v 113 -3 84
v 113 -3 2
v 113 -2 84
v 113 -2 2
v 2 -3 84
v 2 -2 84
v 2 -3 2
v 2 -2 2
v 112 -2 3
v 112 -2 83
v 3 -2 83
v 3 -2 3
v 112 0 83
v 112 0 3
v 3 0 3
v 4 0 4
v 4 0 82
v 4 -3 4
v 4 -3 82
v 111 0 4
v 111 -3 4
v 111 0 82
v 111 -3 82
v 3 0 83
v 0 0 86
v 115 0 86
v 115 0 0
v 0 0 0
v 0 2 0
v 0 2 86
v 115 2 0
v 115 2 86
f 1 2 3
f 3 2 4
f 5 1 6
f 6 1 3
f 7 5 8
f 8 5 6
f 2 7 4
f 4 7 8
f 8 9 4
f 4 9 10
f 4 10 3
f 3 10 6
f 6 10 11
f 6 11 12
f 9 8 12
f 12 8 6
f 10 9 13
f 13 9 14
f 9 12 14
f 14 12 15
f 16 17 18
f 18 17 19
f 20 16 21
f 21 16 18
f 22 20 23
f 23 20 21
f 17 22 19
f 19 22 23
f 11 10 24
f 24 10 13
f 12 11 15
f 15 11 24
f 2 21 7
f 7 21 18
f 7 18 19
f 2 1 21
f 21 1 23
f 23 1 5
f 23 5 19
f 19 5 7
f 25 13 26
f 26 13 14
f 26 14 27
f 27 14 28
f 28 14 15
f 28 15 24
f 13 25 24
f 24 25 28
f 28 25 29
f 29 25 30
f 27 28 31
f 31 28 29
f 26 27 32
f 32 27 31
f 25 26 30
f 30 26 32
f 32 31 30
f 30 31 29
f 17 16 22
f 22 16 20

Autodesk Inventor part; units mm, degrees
ref_plane "YZ Plane" through (0, 0, 0) normal (1, 0, 0) x (0, 1, 0)
ref_plane "XZ Plane" through (0, 0, 0) normal (0, 1, 0) x (-1, 0, 0)
ref_plane "XY Plane" through (0, 0, 0) normal (0, 0, 1) x (1, 0, 0)
sketch "Sketch1" plane through (0, 0, 0) normal (0, 1, 0) x (-1, 0, 0)
  line L0 (0, 0) -> (0, 86)
  line L1 (0, 86) -> (-115, 86)
  line L2 (-115, 86) -> (-115, 0)
  line L3 (-115, 0) -> (0, 0)
  dimension "d0" = 86
  dimension "d1" = 115
extrude "Extrusion1" add sketch "Sketch1" along normal blind 2
sketch "Sketch2" plane through (0, 0, 0) normal (0, -1, 0) x (1, 0, 0)
  point P0 (0, 0)
sketch "Sketch3" plane through (0, 0, 0) normal (0, -1, 0) x (1, 0, 0)
  line L0 (112, 83) -> (3, 83)
  line L1 (3, 83) -> (3, 3)
  line L2 (3, 3) -> (112, 3)
  line L3 (112, 3) -> (112, 83)
  line L4 (4, 82) -> (111, 82)
  line L5 (111, 82) -> (111, 4)
  line L6 (111, 4) -> (4, 4)
  line L7 (4, 4) -> (4, 82)
  point P0 (0, 0)
  dimension "d4" = 109
  dimension "d5" = 80
  dimension "d6" = 109
  dimension "d7" = 1
extrude "Extrusion2" add sketch "Sketch3" along normal blind 3
sketch "Sketch4" plane through (0, -3, 0) normal (0, -1, 0) x (1, 0, 0)
  line L0 (2, 84) -> (113, 84)
  line L1 (113, 84) -> (113, 2)
  line L2 (113, 84) -> (195, 84) construction
  line L3 (113, 2) -> (2, 2)
  line L4 (3, 3) -> (112, 3) projected
  line L5 (2, 2) -> (2, 84)
  line L6 (112, 3) -> (112, 83)
  line L7 (112, 83) -> (3, 83)
  line L8 (3, 83) -> (3, 3)
  line L9 (3, 3) -> (112, 3)
  point P0 (0, 0)
  dimension "d10" = 111
  dimension "d11" = 82
  dimension "d12" = 90
  dimension "d13" = 111
  dimension "d14" = 90
extrude "Extrusion3" add sketch "Sketch4" against normal blind 1
properties part number "cap"
